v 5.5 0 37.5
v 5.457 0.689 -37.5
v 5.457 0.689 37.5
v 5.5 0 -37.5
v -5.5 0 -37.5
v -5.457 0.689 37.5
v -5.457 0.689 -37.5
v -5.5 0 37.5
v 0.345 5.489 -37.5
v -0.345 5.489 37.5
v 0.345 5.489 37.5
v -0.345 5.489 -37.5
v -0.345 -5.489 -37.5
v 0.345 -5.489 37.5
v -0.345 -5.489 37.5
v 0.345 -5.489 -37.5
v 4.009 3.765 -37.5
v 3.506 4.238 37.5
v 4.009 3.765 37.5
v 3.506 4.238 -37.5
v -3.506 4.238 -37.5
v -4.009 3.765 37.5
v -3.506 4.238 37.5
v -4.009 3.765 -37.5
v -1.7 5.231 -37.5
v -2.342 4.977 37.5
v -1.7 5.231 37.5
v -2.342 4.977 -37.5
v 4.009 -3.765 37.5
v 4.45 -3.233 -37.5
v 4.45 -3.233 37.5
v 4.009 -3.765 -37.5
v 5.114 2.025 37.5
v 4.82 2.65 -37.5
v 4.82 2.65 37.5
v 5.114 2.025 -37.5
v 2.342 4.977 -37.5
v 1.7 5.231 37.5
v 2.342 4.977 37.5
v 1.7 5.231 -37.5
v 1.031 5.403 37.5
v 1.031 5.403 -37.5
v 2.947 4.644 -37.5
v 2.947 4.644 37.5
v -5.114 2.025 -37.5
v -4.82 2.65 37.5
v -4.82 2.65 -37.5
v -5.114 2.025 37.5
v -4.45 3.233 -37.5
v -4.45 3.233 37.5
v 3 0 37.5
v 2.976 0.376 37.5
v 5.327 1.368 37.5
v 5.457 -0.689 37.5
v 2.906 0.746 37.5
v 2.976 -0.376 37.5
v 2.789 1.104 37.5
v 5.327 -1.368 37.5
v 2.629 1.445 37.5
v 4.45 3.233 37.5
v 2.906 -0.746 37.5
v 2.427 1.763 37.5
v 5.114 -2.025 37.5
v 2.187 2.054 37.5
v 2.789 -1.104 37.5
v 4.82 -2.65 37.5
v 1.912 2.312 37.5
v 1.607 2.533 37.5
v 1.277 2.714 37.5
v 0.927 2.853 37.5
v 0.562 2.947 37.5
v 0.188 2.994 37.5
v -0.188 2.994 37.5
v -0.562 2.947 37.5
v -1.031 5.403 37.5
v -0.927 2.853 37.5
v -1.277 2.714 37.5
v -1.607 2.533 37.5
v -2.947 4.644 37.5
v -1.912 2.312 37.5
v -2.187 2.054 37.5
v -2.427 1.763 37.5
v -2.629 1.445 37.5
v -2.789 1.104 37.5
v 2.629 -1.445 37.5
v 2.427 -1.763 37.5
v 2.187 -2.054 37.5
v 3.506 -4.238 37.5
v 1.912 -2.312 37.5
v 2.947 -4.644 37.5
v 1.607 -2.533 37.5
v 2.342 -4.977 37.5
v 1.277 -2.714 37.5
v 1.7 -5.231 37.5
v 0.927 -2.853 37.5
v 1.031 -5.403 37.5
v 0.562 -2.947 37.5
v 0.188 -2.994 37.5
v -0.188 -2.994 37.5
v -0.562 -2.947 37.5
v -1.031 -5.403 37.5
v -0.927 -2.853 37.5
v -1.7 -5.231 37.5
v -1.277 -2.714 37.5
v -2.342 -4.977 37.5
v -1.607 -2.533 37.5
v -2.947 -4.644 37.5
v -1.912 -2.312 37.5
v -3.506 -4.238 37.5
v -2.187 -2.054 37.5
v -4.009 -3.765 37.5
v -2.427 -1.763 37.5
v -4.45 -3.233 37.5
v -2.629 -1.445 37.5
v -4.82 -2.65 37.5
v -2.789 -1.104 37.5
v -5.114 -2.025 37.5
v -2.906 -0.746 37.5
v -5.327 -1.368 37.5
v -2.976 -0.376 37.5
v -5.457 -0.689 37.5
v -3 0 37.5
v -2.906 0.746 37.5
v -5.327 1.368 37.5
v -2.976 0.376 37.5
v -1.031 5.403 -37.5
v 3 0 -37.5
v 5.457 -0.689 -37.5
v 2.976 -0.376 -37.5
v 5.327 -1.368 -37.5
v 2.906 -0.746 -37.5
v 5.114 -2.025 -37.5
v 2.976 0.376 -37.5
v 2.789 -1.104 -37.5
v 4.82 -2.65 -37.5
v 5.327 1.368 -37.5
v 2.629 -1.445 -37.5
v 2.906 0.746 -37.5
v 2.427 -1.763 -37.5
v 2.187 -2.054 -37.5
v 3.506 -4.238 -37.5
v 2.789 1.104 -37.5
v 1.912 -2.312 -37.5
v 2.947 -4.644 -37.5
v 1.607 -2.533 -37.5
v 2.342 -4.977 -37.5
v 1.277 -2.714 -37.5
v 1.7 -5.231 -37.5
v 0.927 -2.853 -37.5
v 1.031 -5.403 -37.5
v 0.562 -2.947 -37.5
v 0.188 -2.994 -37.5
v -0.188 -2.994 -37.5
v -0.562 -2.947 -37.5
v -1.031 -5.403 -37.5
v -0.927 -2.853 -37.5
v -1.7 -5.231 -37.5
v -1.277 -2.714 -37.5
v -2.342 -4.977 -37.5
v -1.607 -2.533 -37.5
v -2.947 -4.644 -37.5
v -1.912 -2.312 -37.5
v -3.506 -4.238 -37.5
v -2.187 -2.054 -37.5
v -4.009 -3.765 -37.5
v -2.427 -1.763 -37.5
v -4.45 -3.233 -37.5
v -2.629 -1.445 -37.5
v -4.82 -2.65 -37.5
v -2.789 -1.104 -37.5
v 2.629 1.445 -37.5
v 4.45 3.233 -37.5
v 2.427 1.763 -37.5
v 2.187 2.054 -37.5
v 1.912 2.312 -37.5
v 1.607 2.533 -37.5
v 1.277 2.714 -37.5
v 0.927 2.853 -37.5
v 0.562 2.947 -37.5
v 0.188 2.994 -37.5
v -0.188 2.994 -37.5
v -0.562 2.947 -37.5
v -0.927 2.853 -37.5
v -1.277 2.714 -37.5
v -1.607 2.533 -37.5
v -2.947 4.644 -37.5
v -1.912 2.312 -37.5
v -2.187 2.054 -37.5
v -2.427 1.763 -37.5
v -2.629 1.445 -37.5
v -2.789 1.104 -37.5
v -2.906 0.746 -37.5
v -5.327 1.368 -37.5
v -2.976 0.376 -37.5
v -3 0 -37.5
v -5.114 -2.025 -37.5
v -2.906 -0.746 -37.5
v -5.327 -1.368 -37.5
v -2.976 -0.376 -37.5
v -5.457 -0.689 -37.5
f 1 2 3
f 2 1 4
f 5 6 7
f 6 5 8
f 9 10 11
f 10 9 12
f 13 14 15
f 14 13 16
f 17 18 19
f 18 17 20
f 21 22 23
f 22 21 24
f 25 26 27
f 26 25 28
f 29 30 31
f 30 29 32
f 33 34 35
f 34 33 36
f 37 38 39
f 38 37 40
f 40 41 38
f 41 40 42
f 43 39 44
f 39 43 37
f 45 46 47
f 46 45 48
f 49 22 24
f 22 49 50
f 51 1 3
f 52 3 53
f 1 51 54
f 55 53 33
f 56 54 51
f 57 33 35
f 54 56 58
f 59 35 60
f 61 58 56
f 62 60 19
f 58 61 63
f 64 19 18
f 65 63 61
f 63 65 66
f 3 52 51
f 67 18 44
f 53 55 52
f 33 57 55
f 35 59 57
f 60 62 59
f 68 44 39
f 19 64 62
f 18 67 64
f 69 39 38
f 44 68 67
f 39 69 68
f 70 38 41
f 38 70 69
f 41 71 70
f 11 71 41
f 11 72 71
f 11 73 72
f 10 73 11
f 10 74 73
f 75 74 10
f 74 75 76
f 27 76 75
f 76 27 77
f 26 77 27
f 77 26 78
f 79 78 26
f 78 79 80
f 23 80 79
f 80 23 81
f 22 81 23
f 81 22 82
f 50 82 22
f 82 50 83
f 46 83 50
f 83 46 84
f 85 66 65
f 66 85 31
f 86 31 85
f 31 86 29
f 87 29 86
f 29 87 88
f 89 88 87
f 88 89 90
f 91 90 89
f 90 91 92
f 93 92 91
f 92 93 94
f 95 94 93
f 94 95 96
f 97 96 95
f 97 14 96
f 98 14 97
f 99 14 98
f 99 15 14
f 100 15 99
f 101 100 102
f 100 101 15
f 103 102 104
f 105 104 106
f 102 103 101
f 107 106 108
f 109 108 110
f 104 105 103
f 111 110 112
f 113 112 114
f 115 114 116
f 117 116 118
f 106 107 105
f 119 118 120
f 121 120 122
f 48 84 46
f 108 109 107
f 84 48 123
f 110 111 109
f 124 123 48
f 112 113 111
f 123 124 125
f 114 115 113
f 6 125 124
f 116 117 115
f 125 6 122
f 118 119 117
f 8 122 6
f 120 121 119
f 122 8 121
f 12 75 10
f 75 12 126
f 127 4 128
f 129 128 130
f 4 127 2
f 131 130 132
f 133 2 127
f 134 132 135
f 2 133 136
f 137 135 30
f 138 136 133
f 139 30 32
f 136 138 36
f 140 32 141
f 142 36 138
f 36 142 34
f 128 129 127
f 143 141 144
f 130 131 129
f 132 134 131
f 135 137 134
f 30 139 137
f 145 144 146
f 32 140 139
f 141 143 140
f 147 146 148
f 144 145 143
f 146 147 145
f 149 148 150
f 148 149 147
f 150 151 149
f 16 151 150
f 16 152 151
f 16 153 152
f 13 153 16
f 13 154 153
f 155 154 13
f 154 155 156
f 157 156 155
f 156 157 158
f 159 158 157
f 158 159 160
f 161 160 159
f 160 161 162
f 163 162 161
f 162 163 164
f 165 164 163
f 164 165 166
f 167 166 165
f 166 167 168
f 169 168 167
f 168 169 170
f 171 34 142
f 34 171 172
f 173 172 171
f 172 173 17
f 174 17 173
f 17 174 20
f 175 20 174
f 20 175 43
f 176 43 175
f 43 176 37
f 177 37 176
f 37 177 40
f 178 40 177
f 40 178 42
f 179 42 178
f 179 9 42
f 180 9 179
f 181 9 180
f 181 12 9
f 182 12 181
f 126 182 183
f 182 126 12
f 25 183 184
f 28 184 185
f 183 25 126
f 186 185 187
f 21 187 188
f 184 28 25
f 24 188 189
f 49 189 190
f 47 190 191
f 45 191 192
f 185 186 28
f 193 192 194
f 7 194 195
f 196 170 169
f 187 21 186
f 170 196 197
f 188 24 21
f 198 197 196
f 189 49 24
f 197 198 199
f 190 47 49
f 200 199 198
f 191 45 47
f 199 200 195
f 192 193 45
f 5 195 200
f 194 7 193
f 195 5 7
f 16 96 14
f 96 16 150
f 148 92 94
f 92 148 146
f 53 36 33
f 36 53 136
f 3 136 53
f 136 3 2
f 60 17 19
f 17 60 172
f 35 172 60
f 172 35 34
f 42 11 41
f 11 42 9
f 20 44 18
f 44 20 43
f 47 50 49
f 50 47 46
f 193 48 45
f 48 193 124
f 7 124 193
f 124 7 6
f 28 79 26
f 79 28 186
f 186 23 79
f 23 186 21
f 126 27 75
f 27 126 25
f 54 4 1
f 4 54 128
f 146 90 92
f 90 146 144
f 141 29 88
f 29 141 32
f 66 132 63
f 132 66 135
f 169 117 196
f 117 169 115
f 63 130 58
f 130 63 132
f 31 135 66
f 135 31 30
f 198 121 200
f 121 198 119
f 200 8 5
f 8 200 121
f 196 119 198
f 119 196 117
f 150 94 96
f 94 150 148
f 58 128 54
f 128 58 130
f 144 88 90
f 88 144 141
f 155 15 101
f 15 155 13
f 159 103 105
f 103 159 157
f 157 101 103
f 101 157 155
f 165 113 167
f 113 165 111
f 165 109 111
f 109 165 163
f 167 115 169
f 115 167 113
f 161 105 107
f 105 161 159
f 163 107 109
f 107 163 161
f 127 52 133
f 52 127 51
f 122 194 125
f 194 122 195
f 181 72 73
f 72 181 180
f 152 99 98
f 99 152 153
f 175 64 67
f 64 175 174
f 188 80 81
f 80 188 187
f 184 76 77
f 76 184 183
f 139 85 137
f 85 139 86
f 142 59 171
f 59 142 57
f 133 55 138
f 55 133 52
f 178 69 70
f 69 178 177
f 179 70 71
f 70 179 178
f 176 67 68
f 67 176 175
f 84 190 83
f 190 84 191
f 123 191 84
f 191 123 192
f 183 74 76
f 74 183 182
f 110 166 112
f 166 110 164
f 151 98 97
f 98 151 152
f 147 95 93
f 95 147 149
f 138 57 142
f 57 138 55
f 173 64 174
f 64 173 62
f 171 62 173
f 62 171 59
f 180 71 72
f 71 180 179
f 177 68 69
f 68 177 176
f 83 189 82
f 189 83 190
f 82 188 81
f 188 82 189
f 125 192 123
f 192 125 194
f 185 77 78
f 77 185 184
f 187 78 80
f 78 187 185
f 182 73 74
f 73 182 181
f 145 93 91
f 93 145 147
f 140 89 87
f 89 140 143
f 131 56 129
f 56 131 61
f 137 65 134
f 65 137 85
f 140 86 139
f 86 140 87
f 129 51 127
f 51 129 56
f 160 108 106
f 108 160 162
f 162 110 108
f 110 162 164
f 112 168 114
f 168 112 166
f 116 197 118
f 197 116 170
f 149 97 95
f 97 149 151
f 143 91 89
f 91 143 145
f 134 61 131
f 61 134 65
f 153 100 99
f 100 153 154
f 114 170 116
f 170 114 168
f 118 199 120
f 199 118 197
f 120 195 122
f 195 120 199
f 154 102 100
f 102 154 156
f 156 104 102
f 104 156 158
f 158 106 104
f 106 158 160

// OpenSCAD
$fn = 50;


difference() {
	union() {
		translate(v = [0, 0, -37.5000000000]) {
			cylinder(h = 75, r = 5.5000000000);
		}
	}
	union() {
		translate(v = [0, 0, -100.0000000000]) {
			cylinder(h = 200, r = 3);
		}
	}
}
